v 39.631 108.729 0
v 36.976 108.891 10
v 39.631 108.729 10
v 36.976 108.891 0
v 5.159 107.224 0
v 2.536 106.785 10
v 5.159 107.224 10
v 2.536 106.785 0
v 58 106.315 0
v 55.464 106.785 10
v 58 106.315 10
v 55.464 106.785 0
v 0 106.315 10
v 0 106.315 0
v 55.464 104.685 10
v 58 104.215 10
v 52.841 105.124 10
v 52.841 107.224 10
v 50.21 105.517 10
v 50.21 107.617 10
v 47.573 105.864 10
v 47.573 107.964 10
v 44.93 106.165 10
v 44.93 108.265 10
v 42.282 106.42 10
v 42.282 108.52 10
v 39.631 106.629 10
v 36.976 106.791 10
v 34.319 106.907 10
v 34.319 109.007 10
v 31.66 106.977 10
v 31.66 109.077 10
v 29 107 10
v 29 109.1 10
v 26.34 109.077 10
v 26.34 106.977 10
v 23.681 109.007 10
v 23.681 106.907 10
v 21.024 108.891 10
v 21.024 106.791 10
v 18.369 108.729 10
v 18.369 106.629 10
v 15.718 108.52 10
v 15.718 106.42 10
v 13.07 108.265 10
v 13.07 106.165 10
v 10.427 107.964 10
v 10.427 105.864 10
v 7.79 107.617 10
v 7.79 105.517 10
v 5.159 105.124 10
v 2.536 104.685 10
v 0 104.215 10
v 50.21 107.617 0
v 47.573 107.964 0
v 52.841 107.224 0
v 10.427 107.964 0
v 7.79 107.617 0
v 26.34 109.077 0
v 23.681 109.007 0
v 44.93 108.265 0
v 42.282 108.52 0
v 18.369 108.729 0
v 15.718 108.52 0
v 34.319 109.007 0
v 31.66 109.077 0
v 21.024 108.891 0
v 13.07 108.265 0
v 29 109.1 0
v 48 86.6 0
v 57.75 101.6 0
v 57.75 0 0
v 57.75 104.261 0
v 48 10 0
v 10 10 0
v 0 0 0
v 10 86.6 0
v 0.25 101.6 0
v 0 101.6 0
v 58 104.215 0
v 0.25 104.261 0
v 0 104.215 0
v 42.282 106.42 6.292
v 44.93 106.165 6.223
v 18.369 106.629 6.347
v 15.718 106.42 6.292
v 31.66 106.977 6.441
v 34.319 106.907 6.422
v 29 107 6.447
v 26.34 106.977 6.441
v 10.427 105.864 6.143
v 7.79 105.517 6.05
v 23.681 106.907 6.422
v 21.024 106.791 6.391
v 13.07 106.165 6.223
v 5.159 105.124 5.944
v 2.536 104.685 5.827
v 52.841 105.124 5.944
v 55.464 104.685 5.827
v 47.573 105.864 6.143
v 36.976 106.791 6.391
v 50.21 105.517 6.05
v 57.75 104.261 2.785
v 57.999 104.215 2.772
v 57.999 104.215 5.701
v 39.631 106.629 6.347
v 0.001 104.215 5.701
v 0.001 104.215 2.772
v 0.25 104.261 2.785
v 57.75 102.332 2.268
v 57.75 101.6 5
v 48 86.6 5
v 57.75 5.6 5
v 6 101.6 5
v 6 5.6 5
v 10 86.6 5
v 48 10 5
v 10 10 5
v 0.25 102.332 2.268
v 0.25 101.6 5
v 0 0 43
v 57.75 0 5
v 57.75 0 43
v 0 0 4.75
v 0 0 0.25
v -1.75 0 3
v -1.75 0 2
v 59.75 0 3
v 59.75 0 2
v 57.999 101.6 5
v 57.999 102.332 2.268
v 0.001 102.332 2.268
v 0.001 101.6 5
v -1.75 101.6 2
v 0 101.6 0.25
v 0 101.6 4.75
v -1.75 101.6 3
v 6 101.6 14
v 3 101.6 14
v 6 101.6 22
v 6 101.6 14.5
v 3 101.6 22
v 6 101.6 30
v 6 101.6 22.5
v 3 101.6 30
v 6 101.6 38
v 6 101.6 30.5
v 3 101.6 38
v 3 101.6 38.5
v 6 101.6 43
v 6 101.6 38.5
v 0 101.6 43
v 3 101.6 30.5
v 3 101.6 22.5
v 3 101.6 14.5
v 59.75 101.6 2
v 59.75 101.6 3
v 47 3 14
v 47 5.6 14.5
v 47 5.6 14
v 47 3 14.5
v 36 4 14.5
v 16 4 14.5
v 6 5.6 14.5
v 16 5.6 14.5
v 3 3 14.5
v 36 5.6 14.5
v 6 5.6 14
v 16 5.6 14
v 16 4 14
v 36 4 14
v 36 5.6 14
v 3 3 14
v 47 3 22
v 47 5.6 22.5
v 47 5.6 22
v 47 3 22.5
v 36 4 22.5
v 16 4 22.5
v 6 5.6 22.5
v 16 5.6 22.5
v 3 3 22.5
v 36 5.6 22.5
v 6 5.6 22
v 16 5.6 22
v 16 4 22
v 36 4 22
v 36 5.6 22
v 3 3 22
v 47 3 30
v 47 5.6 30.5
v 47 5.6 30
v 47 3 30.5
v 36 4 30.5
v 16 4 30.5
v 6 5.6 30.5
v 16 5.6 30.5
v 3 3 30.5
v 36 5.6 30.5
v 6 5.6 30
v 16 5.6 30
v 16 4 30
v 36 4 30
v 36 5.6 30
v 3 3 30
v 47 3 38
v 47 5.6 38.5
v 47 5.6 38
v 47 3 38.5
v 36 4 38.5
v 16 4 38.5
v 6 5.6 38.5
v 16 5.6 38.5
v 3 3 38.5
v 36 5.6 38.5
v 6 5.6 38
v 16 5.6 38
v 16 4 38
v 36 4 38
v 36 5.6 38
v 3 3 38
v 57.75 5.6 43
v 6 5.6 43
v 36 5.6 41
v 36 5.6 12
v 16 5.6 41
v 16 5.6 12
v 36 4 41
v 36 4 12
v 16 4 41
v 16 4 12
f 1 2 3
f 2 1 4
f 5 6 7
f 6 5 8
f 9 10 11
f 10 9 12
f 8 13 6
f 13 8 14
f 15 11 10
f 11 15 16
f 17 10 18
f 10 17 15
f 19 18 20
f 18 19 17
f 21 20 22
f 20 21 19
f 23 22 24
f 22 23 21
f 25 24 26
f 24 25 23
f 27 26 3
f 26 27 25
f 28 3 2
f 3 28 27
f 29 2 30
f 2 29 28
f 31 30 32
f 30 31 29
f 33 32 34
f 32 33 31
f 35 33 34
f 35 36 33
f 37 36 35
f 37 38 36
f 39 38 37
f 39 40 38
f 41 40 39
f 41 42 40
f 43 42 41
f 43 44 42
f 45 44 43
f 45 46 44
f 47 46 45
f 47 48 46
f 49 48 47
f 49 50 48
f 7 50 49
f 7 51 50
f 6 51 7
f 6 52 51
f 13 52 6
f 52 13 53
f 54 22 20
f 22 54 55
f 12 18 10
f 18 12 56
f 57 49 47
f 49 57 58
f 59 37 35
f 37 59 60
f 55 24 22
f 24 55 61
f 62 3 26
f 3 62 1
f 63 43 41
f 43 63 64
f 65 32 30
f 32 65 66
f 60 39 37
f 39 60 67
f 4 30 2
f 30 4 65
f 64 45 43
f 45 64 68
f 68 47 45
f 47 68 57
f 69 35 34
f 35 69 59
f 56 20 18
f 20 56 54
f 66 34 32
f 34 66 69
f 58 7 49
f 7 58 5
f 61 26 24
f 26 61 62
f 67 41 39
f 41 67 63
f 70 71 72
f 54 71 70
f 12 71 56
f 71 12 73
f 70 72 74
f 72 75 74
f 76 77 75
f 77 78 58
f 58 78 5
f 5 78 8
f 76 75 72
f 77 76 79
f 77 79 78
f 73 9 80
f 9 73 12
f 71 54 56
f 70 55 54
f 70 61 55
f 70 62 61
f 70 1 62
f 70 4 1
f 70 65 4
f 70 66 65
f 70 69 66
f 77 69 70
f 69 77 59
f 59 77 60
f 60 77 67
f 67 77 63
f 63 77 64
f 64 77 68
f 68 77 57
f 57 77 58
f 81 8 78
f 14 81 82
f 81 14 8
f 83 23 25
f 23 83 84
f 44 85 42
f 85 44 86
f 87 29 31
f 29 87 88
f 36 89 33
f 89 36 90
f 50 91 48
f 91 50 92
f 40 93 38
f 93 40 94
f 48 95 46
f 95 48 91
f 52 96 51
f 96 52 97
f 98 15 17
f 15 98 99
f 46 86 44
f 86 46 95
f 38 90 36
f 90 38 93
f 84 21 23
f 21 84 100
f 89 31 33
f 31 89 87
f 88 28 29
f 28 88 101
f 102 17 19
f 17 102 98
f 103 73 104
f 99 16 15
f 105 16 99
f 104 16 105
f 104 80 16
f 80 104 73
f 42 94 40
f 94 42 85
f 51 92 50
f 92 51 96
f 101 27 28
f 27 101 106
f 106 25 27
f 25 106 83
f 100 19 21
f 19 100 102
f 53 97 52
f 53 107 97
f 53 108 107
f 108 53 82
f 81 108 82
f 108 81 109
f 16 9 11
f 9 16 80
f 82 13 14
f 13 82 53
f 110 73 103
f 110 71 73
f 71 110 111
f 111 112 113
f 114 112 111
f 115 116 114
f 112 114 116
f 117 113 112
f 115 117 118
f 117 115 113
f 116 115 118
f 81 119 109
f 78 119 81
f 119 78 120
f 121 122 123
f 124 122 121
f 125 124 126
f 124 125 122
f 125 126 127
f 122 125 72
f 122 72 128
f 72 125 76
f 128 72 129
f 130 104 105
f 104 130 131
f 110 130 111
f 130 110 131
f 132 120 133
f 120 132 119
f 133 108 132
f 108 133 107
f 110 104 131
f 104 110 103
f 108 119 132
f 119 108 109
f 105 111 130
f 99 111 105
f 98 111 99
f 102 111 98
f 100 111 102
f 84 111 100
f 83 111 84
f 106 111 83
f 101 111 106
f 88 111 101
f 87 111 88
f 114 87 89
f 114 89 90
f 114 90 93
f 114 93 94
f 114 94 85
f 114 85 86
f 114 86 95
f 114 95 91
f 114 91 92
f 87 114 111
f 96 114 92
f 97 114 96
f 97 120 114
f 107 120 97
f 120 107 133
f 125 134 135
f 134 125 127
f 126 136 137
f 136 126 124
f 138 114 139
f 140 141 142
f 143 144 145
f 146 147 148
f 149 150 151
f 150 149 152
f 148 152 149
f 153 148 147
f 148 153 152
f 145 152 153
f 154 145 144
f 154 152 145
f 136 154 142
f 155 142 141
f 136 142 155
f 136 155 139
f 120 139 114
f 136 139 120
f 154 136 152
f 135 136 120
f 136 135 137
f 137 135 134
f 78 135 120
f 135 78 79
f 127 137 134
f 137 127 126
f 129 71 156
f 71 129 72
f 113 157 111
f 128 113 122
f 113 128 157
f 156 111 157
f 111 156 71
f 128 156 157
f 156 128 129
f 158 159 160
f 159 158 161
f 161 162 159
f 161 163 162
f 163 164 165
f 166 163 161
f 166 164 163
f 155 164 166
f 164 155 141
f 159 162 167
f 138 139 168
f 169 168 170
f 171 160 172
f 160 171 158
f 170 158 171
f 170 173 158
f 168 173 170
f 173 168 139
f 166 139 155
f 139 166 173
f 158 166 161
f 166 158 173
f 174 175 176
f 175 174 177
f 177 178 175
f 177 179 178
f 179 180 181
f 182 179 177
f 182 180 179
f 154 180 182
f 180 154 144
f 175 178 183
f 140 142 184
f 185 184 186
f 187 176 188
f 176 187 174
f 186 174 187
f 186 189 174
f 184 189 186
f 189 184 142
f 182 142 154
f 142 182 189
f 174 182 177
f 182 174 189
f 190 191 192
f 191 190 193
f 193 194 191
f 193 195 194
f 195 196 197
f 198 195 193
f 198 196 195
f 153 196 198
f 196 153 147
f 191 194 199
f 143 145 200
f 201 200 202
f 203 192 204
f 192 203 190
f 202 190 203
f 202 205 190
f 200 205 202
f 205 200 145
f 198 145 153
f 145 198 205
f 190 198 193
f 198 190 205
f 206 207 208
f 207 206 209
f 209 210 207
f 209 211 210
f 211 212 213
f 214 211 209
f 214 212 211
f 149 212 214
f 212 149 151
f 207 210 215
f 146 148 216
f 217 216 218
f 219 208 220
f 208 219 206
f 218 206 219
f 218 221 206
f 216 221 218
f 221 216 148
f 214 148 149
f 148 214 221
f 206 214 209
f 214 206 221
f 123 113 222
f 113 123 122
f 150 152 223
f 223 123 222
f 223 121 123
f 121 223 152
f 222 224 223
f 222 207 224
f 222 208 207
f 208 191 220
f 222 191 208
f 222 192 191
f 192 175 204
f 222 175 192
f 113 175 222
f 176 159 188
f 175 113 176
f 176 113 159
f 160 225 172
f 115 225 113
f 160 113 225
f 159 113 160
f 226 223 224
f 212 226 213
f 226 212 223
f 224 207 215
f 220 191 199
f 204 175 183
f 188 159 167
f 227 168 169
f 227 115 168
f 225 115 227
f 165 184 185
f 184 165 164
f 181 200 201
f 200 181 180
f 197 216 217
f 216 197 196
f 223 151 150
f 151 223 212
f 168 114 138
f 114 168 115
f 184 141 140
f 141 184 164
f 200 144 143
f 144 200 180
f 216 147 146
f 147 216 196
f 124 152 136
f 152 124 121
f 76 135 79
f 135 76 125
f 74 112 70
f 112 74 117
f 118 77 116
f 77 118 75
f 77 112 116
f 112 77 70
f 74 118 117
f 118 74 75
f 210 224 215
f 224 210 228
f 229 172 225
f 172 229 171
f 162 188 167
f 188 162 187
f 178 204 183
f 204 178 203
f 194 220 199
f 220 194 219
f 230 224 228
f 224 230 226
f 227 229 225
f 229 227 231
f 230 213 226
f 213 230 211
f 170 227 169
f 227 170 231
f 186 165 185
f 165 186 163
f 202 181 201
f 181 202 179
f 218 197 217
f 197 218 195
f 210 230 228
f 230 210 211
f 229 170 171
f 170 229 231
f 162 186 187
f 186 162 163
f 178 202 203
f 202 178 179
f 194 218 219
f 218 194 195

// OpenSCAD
/**
 * SSD Tray for NVMe
 * Version: 0.1
 * History
 * | 0.1 | Initial
 */



/* [Tray width] */

// Make the tray this much narrower on each side
// for a more comfortable fit in the frame
// (a bigger number here will make the fit looser)
tray_insert_fudge = 0.25; // [0:0.05:0.75]

/* [Hidden] */

inner_wall_size = 5;
tray_width = 58;

tray_arduino_length = 101.6; // arduino mega length
tray_length = tray_arduino_length;

tray_depth = 5;
tray_lip_overhang = 10;

inner_wall_thickness = 5;
spacer_depth_ext = 2; // arduino requires 2mm uplift so a USB connector cable can fit "over" the curved handle
spacer_depth = 3;
spacer_outer_radius = 3;

screw_head_radius = 3.5;    // +0.5 for M3
screw_head_depth = 2.5;     // +0.5 for M3
pcb_depth = 2;
spacer_center_width = 48.2; // arduino width between pcb holes
spacer_from_edge = (tray_width - spacer_center_width) / 2;

sd_window_width = 38;
floor_window_width = sd_window_width;
floor_window_border = (tray_width - floor_window_width) / 2;
floor_window_length = tray_length - floor_window_border*2 - inner_wall_thickness;

epsilon = 0.001;

leftsupportw = 6;
supporth = 44;
leftsupportd = tray_length;

difference() {
    union() {
        // the main tray
        intersection() {
            union() {
                translate([tray_insert_fudge, 0, 0]) {
                    cube([  tray_width - 2*tray_insert_fudge,
                            tray_length + tray_lip_overhang,
                            tray_depth]);
                }

                difference() {
                    // the outer part of the curved handle
                    translate([ tray_width/2,
                                -tray_length*0.5 + 7.5,
                                0]) {
                        cylinder(
                            h=tray_depth + spacer_depth + pcb_depth,
                            r=tray_length*1.5,
                            center=false,
                            $fn=360);
                    }
                    
                    // cut away the inside to make it a shell
                    translate([ tray_width/2,
                                -tray_length*0.5 + 5.4,
                                -epsilon]) {
                        cylinder(
                            h=tray_depth + spacer_depth + pcb_depth + 2*epsilon,
                            r=tray_length*1.5,
                            center=false,
                            $fn=360);
                    }
                    translate([ tray_width,
                                -tray_length,
                                -epsilon]) {
                        cube([  2.2*tray_width,
                                3*tray_length,
                                tray_depth + spacer_depth + pcb_depth + 2*epsilon]);
                    }
                    translate([ -2.2*tray_width,
                                -tray_length,
                                -epsilon]) {
                        cube([  2.2*tray_width,
                                3*tray_length,
                                tray_depth + spacer_depth + pcb_depth + 2*epsilon]);
                    }
                }
                
                // reinforce the curved handle
                translate([epsilon, tray_length, tray_depth]) {
                    rotate([-75, 0, 0]) {
                        cube([tray_width - 2*epsilon, 2*sqrt(2), 6]);
                    }
                }
            }

            // cut away the ears of the tray
            // where they jut through the curved handle
            translate([ tray_width/2,
                        -tray_length*0.5 + 7.5,
                        0]) {
                cylinder(
                    h=tray_depth + spacer_depth + pcb_depth,
                    r=tray_length*1.5,
                    center=false,
                    $fn=360);
            }
        }
        
        // the tray insert edge tabs
        for (a=[    tray_insert_fudge,
                    tray_width - tray_insert_fudge]) {
            translate([ a,
                        0,
                        tray_depth/2]) {
                intersection() {
                    rotate([0, 45, 0]) {
                        translate([-tray_depth/sqrt(2)/2, 0, -tray_depth/sqrt(2)/2]) {
                            cube([  tray_depth/sqrt(2),
                                    tray_length,
                                    tray_depth/sqrt(2)]);
                        }
                    }
                    translate([-tray_depth/2+0.5, 0, -tray_depth/2]) {
                        cube([  tray_depth-1,
                                tray_length,
                                tray_depth]);
                    }
                }
            }
        }
        
        // add ssd pcb back
        supportw = tray_width-0.5;
        supporth = 44;
        supportd = tray_length; //tray_length;
        
        translate([ tray_width/2 - supportw/2, tray_length - supportd, 0]) {
            cube( [ supportw, supportd - 96, tray_depth + supporth - 6]);
        }
        
        // add ssd pcb left support
        translate([ 0, tray_length - leftsupportd, 0]) {
            cube( [ leftsupportw, leftsupportd, tray_depth + supporth - 6]);
        }
    }
    
    // punch a hole in the bottom
    translate([ floor_window_border,
                floor_window_border,
                -epsilon]) {
        cube([  floor_window_width,
                floor_window_length,
                tray_depth + 2*epsilon]);
    }

    // add slots
    pcbslotw = 44;
    pcbsloth = 1.5;
    pcbslotd = tray_length + 3;
    y = 6;
    slotgap = 8;

    for ( i=[1:5]) {
        translate([ 
            tray_width/2 - tray_width/2 + 3, 
            tray_length - pcbslotd + 6, 
            y + (slotgap*i)]) {
            cube([pcbslotw, pcbslotd + 12, tray_depth + pcbsloth - 6]);
        }
    }
    
    // add back recess to accommodate any screw holders for SSD
    recessw = 20;
    recessh = 22;
    recessd = tray_length;
    translate([ tray_width/2 - recessw/2 - 3, tray_length - recessd + 4, 12]) {
//            color("red")
        cube( [ recessw, recessd - 96 - 4, tray_depth + recessh + 2]);
    }
    
}
